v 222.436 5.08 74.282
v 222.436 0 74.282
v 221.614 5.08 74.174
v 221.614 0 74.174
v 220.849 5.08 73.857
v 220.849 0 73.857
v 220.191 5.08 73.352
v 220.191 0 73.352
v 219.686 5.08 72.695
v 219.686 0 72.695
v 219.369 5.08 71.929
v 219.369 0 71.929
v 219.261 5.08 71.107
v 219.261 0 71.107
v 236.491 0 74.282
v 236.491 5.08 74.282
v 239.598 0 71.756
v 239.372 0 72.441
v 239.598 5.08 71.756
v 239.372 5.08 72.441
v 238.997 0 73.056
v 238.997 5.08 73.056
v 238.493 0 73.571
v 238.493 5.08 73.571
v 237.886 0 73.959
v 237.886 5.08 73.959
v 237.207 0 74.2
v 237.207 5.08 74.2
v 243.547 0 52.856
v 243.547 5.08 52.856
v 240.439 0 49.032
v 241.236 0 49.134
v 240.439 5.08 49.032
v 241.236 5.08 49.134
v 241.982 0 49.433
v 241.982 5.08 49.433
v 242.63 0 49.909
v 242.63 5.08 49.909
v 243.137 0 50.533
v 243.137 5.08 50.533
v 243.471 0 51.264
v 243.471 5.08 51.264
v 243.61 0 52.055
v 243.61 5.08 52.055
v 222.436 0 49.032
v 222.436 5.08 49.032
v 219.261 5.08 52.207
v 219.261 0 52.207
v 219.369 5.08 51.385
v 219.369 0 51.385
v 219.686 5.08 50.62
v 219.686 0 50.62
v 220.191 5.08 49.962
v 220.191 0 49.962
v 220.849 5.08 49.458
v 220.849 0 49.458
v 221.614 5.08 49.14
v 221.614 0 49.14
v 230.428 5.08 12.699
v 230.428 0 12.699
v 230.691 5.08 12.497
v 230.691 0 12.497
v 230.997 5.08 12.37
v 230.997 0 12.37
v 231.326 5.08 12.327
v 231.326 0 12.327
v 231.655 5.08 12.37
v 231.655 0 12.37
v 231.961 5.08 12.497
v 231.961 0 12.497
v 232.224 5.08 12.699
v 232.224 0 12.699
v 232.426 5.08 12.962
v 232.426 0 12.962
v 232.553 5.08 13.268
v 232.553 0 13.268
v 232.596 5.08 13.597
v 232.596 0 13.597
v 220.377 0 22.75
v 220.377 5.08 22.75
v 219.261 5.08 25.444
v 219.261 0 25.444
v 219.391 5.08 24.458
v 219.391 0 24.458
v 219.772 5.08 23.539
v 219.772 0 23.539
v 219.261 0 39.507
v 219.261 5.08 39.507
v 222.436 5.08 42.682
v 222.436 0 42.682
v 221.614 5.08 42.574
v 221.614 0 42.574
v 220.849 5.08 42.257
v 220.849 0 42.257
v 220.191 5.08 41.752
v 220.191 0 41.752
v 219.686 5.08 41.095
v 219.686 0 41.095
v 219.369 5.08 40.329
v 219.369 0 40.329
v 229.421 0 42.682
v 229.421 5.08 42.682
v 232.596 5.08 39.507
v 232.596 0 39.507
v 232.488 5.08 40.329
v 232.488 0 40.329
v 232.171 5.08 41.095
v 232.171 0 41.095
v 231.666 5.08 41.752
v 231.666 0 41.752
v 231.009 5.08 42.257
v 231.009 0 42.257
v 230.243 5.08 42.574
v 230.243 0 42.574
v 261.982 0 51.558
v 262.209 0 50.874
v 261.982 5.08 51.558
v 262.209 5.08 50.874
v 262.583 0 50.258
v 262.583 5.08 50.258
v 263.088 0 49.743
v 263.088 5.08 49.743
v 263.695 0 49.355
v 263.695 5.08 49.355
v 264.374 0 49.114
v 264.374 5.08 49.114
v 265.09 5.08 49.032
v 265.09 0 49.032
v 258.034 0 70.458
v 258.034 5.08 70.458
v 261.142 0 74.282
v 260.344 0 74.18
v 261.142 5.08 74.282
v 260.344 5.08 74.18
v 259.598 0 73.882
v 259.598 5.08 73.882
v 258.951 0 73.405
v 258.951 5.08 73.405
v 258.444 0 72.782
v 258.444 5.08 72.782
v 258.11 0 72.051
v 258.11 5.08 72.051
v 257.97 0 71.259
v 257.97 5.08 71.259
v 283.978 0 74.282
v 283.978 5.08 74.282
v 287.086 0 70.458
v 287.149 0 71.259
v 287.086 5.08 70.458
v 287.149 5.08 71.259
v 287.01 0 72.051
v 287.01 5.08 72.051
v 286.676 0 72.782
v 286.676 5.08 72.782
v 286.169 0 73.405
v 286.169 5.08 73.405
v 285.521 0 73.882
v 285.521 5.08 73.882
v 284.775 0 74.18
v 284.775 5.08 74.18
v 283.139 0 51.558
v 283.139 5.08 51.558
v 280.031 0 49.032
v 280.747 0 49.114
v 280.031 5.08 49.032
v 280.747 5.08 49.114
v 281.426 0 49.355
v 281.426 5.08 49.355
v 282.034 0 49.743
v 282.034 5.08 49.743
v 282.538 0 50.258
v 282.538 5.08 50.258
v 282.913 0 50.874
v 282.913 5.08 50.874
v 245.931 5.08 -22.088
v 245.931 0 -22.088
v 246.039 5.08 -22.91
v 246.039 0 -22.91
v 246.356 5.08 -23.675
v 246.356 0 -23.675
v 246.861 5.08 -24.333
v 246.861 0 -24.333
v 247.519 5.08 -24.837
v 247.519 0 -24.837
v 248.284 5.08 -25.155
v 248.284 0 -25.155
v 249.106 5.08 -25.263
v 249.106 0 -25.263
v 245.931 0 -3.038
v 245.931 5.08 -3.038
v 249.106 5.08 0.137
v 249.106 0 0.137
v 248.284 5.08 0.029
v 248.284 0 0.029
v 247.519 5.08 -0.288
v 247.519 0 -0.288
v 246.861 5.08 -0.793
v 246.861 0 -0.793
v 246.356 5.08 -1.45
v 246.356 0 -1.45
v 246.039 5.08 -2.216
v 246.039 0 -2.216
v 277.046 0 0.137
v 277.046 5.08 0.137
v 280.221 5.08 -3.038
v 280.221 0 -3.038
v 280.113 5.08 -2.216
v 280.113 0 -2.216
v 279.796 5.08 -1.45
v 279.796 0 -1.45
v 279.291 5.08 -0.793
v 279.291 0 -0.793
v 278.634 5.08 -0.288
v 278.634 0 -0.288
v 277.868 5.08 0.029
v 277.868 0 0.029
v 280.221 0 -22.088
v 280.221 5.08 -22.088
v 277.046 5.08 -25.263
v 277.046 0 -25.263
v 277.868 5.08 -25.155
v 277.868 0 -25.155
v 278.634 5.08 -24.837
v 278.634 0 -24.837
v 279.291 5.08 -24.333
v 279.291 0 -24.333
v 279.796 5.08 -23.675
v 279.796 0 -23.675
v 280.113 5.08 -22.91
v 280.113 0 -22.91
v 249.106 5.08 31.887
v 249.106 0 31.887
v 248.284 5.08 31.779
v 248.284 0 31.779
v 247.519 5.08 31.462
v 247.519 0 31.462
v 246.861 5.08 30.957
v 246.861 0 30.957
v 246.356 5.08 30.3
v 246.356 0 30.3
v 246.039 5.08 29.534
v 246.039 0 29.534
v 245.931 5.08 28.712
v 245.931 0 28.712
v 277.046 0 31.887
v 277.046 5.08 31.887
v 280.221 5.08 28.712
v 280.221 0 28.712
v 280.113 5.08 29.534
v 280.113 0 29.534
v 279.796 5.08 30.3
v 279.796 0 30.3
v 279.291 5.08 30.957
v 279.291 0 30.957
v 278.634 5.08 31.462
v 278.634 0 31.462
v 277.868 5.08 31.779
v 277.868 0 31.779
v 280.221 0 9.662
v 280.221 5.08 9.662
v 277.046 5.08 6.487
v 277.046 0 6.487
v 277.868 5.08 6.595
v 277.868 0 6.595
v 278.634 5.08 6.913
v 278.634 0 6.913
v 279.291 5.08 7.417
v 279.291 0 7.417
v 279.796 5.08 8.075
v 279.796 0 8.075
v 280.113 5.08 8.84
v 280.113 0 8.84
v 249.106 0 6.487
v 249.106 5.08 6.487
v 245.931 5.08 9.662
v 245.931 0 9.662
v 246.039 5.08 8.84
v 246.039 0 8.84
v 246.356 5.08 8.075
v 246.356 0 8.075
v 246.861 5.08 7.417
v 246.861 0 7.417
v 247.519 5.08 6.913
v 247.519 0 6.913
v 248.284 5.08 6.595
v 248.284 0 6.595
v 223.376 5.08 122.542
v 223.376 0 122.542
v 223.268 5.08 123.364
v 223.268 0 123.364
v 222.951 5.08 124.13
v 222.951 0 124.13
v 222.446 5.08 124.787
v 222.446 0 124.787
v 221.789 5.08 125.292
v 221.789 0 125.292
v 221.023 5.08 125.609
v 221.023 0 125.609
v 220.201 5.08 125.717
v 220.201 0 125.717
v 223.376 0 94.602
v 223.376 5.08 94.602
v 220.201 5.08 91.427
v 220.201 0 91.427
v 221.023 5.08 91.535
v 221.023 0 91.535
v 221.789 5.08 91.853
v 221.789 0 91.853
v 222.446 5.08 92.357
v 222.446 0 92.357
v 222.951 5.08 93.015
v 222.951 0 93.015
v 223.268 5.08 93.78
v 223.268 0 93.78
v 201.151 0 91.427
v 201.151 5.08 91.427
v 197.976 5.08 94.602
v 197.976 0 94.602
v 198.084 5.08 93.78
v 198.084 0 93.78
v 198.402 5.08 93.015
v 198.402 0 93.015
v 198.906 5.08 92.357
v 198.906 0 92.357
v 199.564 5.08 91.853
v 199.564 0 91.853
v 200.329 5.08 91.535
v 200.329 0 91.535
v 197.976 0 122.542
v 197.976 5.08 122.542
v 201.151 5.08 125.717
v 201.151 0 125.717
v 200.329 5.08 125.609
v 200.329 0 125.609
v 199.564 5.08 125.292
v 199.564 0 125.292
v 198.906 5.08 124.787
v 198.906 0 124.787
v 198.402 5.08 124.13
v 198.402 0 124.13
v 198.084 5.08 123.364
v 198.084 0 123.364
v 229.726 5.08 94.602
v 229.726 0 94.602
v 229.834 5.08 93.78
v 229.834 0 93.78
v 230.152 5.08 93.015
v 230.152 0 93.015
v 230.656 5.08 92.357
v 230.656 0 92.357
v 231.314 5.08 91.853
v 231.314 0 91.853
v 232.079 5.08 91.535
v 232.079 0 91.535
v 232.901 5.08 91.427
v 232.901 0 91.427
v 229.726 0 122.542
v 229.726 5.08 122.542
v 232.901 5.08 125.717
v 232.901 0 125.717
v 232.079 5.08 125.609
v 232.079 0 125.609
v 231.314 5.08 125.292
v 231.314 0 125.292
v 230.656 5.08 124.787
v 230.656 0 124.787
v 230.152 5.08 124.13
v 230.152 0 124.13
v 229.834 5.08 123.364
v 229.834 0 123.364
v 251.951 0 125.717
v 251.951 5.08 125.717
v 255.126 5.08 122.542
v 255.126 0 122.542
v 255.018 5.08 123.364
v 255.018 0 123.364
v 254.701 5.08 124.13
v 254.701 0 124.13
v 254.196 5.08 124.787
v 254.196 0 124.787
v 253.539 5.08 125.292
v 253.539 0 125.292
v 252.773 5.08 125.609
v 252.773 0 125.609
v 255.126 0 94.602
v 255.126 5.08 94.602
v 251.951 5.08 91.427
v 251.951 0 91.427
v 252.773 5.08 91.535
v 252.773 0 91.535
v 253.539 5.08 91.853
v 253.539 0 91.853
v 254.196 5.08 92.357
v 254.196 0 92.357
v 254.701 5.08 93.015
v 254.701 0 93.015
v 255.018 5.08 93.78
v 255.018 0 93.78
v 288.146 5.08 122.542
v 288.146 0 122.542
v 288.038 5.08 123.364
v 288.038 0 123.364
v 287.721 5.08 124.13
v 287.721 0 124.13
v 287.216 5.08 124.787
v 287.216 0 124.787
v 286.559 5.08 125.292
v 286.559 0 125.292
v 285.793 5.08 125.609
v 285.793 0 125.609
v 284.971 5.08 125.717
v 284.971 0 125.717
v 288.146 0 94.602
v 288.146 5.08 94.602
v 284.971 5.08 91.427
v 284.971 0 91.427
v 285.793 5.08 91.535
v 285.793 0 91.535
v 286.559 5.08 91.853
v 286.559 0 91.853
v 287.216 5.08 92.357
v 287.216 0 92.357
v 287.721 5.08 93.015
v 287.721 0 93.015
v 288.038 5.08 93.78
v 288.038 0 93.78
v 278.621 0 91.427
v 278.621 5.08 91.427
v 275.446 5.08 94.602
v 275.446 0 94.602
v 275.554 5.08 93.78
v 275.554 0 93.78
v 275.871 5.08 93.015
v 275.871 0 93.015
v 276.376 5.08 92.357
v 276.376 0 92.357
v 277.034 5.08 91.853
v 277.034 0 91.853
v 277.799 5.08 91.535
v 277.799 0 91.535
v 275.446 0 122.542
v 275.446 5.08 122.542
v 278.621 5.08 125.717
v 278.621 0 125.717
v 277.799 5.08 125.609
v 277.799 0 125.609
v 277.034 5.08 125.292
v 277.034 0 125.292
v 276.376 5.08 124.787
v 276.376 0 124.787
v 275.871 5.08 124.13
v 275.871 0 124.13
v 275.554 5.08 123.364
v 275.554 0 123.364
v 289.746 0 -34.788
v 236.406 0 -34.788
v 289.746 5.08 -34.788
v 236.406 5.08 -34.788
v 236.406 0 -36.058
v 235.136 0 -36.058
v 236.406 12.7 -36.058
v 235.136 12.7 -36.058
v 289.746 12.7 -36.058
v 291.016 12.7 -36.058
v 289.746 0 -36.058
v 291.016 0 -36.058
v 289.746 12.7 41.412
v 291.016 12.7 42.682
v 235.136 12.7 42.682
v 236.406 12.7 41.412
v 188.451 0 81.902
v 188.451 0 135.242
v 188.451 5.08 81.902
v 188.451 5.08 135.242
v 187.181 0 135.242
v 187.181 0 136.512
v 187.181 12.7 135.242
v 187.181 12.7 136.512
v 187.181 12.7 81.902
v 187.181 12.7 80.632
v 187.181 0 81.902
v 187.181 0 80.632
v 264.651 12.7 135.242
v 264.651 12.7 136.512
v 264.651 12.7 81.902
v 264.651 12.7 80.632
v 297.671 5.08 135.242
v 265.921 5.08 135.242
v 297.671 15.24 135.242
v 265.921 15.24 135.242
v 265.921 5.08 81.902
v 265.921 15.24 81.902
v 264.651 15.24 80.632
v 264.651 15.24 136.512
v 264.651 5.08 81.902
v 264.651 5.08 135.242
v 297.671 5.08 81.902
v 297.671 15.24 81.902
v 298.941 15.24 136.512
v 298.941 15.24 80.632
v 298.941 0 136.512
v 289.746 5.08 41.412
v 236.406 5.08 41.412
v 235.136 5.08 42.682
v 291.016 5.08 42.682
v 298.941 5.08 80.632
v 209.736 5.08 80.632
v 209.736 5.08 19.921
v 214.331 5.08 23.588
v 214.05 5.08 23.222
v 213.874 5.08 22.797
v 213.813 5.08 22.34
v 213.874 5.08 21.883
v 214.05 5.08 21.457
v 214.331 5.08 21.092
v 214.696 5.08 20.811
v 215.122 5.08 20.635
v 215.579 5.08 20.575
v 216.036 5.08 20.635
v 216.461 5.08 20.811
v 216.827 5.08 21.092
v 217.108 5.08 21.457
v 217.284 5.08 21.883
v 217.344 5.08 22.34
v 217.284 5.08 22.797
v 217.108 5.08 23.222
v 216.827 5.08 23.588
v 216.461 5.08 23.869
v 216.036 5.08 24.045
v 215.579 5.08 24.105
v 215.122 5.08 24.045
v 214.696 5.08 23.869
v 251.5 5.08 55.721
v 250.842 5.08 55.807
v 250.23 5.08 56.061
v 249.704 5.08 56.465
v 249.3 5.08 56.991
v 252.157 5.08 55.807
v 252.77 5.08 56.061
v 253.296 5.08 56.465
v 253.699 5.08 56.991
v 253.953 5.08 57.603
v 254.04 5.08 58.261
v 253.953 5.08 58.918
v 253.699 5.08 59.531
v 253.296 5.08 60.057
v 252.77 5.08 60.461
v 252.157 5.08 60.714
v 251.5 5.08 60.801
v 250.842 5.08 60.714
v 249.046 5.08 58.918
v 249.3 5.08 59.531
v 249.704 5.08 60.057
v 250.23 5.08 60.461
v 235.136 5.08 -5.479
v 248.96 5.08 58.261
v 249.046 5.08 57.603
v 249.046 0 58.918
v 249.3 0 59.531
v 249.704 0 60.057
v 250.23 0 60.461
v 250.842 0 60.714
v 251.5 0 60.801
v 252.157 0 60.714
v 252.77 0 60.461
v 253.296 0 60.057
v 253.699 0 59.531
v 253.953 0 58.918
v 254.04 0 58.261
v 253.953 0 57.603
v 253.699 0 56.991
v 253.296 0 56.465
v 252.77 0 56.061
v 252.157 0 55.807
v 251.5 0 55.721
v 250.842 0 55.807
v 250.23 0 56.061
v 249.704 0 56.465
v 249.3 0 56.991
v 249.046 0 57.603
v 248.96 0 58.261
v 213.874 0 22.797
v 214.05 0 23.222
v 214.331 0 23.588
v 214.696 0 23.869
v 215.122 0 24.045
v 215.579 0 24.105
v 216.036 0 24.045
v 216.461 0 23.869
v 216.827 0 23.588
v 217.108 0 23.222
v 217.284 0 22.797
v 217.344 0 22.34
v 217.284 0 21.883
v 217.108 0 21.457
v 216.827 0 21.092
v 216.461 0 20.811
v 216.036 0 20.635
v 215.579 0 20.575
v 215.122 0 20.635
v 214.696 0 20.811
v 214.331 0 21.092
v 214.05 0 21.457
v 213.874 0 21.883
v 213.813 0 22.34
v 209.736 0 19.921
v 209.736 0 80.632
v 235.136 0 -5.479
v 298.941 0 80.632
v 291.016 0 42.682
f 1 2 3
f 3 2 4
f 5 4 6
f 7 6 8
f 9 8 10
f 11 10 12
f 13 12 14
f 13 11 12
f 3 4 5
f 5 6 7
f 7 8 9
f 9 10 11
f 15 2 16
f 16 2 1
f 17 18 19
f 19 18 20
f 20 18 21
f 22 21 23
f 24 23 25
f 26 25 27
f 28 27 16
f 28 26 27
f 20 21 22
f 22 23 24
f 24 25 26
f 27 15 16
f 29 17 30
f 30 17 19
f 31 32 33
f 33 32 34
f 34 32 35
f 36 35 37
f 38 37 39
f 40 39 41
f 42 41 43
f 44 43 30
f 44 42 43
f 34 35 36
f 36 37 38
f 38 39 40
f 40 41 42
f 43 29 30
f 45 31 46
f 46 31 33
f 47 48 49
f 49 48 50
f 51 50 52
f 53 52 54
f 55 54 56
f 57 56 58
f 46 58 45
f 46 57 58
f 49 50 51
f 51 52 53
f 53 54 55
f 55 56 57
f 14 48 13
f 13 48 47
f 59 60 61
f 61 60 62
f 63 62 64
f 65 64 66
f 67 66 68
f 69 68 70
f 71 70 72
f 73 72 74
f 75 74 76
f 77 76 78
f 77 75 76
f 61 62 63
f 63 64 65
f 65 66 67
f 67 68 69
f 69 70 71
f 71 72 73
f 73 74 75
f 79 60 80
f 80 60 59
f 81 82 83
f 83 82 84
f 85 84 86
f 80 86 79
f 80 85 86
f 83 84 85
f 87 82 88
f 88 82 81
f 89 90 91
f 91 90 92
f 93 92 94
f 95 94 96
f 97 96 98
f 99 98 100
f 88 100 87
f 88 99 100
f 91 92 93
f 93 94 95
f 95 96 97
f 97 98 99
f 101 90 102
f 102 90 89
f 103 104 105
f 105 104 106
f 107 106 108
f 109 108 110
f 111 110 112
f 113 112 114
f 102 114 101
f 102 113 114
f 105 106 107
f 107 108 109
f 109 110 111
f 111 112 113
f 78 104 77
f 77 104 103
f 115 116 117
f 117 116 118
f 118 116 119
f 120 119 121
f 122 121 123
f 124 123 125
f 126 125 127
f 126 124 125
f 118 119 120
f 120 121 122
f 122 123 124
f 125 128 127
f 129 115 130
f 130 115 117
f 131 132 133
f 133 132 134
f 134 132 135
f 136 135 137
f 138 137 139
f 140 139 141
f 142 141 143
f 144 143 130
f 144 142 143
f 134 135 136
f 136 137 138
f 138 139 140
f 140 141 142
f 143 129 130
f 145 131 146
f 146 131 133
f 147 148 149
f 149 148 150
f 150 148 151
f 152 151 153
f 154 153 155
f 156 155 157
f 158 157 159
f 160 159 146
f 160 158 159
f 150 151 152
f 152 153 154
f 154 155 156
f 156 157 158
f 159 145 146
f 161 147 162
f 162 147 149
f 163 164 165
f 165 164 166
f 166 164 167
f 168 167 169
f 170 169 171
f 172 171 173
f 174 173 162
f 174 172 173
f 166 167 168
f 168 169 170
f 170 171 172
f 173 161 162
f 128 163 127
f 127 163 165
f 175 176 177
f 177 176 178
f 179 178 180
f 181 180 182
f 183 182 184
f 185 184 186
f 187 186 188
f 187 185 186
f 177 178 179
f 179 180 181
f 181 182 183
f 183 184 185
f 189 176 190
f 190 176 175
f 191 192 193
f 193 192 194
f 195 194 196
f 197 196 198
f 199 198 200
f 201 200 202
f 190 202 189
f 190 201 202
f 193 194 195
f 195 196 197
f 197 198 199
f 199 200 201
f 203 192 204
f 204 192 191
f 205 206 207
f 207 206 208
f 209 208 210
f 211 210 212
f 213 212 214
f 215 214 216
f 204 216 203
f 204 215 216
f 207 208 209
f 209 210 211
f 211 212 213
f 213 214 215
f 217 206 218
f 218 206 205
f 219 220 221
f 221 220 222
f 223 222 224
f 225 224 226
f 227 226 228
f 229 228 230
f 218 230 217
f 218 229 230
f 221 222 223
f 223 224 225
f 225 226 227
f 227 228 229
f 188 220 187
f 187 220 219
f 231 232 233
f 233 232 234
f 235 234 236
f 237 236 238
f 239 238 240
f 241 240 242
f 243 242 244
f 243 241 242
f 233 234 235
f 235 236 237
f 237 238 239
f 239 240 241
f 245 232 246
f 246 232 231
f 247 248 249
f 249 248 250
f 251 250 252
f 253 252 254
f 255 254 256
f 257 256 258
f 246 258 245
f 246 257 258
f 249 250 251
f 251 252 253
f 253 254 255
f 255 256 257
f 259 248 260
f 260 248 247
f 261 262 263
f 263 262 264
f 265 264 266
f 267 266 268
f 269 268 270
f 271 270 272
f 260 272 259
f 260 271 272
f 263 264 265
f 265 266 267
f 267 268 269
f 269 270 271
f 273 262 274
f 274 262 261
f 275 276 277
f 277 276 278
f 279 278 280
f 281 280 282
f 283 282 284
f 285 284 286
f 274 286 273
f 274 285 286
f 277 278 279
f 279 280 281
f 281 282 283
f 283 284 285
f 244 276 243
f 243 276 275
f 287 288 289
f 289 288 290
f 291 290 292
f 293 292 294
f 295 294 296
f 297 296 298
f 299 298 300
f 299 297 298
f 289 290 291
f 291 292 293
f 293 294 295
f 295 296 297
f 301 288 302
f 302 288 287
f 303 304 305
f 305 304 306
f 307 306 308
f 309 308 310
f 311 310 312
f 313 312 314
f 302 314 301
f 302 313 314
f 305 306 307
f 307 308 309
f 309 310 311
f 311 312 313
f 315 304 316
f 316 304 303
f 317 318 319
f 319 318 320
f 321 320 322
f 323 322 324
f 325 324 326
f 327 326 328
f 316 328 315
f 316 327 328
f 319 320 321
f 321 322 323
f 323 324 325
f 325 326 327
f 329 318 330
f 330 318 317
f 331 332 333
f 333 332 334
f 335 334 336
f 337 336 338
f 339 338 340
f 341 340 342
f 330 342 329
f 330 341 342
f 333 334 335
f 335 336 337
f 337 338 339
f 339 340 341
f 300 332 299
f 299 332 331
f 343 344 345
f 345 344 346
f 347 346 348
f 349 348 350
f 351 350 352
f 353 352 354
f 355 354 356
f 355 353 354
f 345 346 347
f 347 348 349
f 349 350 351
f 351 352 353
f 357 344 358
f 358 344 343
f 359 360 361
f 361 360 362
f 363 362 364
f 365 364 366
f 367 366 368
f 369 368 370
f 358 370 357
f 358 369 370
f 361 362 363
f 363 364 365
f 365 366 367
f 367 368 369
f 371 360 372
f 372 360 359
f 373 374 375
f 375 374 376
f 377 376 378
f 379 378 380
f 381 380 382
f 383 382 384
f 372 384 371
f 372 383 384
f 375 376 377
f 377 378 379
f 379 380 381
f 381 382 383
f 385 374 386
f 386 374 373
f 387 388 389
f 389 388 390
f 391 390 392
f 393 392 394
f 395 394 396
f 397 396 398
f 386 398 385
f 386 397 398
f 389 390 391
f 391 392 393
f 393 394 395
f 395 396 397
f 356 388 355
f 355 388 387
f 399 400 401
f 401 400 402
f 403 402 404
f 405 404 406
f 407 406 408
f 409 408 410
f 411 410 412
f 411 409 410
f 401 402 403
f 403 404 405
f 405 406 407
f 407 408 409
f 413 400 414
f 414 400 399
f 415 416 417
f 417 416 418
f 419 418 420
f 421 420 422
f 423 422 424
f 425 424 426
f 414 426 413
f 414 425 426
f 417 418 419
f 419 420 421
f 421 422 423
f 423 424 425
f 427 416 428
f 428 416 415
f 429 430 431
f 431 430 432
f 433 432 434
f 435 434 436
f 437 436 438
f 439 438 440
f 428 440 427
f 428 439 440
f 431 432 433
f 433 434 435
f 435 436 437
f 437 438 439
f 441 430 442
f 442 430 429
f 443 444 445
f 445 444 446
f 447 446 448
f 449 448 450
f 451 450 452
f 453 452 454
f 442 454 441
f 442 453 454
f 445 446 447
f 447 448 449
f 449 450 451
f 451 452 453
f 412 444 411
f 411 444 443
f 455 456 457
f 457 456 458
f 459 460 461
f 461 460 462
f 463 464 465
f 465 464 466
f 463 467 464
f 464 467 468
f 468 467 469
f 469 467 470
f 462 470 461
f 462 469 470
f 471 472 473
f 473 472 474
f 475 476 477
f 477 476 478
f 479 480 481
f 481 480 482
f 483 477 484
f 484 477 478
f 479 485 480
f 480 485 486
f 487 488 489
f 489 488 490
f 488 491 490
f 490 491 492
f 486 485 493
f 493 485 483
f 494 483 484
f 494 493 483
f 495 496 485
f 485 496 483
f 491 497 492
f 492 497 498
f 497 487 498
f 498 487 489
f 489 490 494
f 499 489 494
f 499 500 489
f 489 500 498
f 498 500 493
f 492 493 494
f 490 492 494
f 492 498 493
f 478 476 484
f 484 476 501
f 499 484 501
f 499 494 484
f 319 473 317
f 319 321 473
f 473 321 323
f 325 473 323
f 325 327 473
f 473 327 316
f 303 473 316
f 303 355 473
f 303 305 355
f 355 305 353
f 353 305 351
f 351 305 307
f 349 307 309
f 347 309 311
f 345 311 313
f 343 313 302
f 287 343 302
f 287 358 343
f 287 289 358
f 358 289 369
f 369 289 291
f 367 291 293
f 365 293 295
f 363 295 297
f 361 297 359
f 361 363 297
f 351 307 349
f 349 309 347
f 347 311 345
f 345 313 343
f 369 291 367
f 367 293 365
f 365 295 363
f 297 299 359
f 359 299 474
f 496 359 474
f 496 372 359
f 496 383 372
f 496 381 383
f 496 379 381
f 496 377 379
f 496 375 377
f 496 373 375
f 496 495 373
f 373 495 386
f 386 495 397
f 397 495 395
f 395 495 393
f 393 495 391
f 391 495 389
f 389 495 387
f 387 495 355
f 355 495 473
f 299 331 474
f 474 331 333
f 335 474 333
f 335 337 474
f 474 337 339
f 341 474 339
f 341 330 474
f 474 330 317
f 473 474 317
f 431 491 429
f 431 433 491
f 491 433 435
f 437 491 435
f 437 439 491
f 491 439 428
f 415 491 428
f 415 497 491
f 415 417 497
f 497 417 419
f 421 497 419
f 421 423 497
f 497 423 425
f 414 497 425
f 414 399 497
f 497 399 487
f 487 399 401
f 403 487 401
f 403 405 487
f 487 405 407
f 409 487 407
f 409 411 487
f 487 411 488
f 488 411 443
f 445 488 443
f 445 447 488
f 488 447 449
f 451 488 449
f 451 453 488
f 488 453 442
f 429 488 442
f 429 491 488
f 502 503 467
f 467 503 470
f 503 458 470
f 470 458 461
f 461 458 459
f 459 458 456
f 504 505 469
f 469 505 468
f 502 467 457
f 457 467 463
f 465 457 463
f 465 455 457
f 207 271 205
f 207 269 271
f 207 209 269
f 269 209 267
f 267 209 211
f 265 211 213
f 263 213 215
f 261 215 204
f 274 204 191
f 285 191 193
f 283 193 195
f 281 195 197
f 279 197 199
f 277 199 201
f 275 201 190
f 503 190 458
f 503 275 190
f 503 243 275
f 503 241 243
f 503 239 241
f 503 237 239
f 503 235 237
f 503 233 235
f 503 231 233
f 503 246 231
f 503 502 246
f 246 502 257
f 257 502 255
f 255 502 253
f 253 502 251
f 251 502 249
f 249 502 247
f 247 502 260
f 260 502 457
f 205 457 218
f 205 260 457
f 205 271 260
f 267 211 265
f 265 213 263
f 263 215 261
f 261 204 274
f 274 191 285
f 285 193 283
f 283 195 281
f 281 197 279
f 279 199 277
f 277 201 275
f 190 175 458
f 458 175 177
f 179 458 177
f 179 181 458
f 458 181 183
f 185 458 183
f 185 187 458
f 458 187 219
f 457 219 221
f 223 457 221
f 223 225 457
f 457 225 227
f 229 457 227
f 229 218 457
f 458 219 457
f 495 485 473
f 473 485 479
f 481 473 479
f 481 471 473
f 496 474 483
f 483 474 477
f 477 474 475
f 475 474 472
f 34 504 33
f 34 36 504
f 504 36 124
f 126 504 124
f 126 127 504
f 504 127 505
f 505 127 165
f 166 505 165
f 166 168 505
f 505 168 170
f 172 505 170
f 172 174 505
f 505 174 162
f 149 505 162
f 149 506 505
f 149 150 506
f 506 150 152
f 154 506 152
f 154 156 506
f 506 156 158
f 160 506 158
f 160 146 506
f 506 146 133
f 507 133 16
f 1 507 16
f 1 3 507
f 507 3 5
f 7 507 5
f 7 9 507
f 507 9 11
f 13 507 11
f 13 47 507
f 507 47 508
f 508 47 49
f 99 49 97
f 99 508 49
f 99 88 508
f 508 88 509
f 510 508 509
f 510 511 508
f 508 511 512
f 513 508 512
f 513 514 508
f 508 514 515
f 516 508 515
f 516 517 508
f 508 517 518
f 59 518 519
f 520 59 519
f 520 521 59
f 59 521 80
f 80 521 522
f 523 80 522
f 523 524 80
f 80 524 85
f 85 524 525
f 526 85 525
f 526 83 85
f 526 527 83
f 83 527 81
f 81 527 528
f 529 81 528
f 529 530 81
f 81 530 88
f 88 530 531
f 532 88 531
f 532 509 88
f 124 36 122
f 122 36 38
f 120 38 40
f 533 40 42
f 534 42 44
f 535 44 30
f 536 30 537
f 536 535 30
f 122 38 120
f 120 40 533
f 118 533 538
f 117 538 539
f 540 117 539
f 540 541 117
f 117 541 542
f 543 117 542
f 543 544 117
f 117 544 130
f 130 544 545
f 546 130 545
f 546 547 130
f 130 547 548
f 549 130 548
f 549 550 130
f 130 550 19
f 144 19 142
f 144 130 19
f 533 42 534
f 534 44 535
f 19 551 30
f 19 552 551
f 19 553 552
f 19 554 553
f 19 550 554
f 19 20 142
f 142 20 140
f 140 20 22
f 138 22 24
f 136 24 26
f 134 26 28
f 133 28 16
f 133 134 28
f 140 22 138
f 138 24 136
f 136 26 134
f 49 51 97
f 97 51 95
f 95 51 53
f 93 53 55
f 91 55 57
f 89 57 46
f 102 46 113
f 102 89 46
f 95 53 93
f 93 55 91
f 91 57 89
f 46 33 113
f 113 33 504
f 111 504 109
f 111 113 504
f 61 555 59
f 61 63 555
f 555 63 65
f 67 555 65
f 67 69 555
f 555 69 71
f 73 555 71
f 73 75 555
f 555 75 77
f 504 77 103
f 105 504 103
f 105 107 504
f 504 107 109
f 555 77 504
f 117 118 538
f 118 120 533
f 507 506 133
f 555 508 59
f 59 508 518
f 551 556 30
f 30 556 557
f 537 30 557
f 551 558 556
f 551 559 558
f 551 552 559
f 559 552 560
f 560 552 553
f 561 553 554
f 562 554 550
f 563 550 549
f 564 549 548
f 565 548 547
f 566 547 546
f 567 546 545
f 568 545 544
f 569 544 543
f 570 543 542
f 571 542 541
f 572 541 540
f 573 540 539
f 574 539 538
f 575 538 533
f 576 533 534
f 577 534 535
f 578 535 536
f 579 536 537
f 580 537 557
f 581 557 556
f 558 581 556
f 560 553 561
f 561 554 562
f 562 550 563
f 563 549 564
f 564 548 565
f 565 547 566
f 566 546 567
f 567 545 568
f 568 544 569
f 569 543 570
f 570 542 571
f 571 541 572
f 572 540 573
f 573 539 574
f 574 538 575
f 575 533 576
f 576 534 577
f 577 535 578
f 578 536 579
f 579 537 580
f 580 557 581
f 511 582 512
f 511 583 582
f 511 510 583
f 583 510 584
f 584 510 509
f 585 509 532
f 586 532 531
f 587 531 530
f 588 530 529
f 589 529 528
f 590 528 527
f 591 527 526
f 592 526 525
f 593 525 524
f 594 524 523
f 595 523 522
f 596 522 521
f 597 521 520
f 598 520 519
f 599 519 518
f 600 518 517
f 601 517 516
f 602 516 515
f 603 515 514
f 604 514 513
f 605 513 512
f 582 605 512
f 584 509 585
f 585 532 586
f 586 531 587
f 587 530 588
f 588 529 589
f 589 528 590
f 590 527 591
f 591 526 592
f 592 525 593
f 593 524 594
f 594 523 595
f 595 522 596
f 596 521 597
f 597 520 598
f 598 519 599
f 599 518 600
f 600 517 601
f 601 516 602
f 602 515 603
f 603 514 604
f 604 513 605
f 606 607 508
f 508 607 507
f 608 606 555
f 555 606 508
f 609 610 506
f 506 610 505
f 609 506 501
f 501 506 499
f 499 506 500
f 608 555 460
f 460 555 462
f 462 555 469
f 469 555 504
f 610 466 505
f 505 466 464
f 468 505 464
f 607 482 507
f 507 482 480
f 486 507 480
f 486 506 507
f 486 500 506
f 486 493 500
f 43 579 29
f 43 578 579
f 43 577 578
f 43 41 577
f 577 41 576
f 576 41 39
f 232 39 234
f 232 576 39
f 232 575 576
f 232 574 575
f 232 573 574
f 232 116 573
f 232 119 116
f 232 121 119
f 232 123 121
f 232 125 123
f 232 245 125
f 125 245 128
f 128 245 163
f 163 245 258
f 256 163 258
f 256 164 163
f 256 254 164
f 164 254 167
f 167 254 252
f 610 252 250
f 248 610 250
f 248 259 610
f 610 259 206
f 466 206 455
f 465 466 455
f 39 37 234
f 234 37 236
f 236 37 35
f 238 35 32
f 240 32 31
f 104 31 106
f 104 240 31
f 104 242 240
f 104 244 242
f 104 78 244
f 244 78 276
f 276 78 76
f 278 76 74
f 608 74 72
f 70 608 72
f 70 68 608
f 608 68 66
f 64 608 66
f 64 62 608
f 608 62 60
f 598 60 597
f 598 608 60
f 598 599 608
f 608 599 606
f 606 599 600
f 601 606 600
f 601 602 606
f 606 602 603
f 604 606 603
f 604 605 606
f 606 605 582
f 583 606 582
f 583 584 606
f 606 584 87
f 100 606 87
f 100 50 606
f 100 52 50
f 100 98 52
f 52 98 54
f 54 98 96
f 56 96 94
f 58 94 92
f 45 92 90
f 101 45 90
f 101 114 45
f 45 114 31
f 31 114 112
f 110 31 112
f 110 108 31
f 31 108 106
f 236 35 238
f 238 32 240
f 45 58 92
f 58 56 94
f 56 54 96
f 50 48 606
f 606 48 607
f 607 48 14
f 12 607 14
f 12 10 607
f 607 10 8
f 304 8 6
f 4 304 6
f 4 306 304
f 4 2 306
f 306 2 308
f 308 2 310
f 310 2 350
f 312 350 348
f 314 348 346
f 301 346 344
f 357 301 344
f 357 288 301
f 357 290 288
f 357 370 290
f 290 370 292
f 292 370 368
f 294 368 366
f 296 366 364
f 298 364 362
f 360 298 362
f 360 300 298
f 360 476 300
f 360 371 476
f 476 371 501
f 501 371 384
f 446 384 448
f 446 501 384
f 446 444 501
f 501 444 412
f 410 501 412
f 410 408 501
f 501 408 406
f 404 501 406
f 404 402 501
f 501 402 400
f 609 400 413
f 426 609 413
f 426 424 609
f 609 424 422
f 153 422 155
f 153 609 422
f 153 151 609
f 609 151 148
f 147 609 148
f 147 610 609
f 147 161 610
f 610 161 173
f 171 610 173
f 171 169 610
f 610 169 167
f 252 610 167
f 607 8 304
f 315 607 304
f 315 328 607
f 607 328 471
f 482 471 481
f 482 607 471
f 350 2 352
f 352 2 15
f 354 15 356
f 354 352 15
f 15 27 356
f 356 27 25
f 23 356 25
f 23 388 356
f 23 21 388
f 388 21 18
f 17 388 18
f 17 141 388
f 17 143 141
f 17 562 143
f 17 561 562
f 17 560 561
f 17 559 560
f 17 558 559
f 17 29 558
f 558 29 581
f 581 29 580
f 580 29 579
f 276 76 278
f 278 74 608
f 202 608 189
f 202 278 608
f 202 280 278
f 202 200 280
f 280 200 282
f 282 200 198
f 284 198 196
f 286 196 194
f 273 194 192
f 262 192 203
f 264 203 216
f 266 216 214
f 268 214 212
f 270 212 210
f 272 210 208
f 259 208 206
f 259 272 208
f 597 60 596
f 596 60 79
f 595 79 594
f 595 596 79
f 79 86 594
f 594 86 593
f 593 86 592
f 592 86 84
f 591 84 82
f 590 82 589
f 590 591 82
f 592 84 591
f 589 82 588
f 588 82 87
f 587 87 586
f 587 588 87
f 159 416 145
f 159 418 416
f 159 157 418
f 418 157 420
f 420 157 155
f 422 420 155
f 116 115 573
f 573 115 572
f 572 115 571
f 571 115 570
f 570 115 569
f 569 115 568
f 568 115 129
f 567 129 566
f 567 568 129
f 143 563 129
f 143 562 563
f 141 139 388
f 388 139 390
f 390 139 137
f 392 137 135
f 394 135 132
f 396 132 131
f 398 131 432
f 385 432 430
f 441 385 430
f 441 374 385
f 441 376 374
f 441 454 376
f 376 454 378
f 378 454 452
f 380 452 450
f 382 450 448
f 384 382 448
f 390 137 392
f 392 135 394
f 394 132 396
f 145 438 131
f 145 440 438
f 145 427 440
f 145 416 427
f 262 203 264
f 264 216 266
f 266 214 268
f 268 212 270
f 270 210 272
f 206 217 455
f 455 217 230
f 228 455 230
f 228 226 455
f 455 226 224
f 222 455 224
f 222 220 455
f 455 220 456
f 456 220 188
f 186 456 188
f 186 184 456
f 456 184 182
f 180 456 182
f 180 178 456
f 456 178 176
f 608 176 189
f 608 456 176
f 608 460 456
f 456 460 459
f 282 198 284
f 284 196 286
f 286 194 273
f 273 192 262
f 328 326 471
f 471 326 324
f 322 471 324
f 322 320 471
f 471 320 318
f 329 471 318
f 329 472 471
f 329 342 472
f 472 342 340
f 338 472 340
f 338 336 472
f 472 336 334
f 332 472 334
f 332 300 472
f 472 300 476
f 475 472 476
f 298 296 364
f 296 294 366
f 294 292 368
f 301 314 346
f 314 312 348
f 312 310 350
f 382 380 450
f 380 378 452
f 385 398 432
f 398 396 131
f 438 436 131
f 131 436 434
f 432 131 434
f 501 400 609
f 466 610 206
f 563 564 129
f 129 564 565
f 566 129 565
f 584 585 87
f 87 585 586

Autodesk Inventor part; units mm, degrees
ref_plane "YZ Plane" through (0, 0, 0) normal (1, 0, 0) x (0, 1, 0)
ref_plane "XZ Plane" through (0, 0, 0) normal (0, 1, 0) x (-1, 0, 0)
ref_plane "XY Plane" through (0, 0, 0) normal (0, 0, 1) x (1, 0, 0)
sketch "Sketch1" plane through (0, 0, 0) normal (0, 1, 0) x (-1, 0, 0)
  line L0 (-203.3861, 74.2822) -> (-125.9161, 74.2822) construction
  line L1 (-125.9161, 74.2822) -> (-125.9161, -61.6078) construction
  line L2 (-125.9161, -61.6078) -> (-203.3861, -61.6078) construction
  line L3 (-203.3861, -61.6078) -> (-203.3861, 74.2822) construction
  line L4 (-203.3861, 74.2822) -> (-266.8861, 74.2822) construction
  line L5 (-164.6511, 373.4543) -> (-228.1511, 373.4543) construction
  line L6 (-228.1511, 373.4543) -> (-228.1511, 106.7543) construction
  line L7 (-228.1511, 106.7543) -> (-299.9932, 34.9122) construction
  line L8 (-299.9932, 34.9122) -> (-668.2932, 34.9122) construction
  line L9 (-668.2932, 34.9122) -> (-668.2932, -28.5878) construction
  line L10 (-668.2932, -28.5878) -> (-223.7932, -28.5878) construction
  line L11 (-223.7932, -28.5878) -> (-164.6511, 30.5543) construction
  line L12 (-164.6511, 30.5543) -> (-164.6511, 373.4543) construction
  line L13 (-264.0722, 70.8332) -> (-194.2222, 0.9832) construction
  line L14 (-266.8861, 74.2822) -> (-266.8861, 48.8822) construction
  line L15 (-266.8861, 48.8822) -> (-203.3861, -14.6178) construction
  line L16 (-266.8861, 68.0193) -> (-260.6232, 74.2822) construction
  circle A0 centre (-251.4998, 58.2609) radius 2.54
  circle A1 centre (-215.5788, 22.3399) radius 1.7653
  line L17 (-264.6511, 135.2422) -> (-188.4511, 135.2422)
  line L18 (-188.4511, 135.2422) -> (-188.4511, 81.9022)
  line L19 (-188.4511, 81.9022) -> (-264.6511, 81.9022)
  line L20 (-264.6511, 81.9022) -> (-264.6511, 135.2422)
  circle A2 centre (-164.6511, -28.5878) radius 4.9213 construction
  line L21 (-164.6511, 30.5543) -> (-164.6511, -28.5878) construction
  line L22 (-164.6511, -28.5878) -> (-223.7932, -28.5878) construction
  line L23 (-264.6511, 136.5122) -> (-187.1811, 136.5122)
  line L24 (-187.1811, 136.5122) -> (-187.1811, 80.6322)
  line L25 (-187.1811, 80.6322) -> (-264.6511, 80.6322)
  line L26 (-264.6511, 80.6322) -> (-264.6511, 136.5122)
  line L27 (-289.7461, 41.4122) -> (-236.4061, 41.4122)
  line L28 (-236.4061, 41.4122) -> (-236.4061, -34.7878)
  line L29 (-236.4061, -34.7878) -> (-289.7461, -34.7878)
  line L30 (-289.7461, -34.7878) -> (-289.7461, 41.4122)
  line L31 (-291.0161, 42.6822) -> (-235.1361, 42.6822)
  line L32 (-235.1361, 42.6822) -> (-235.1361, -36.0578)
  line L33 (-235.1361, -36.0578) -> (-291.0161, -36.0578)
  line L34 (-291.0161, -36.0578) -> (-291.0161, 42.6822)
  line L35 (-235.1361, -5.4793) -> (-209.7361, 19.9207)
  line L36 (-209.7361, 19.9207) -> (-209.7361, 80.6322)
  line L37 (-264.6511, 136.5122) -> (-264.6511, 80.6322)
  line L38 (-264.6511, 81.9022) -> (-264.6511, 135.2422)
  line L39 (-264.6511, 80.6322) -> (-264.6511, 136.5122)
  line L40 (-265.9211, 135.2422) -> (-297.6711, 135.2422)
  line L41 (-297.6711, 135.2422) -> (-297.6711, 81.9022)
  line L42 (-297.6711, 81.9022) -> (-265.9211, 81.9022)
  line L43 (-265.9211, 81.9022) -> (-265.9211, 135.2422)
  line L44 (-264.6511, 136.5122) -> (-298.9411, 136.5122)
  line L45 (-298.9411, 136.5122) -> (-298.9411, 80.6322)
  line L46 (-298.9411, 80.6322) -> (-264.6511, 80.6322)
  line L47 (-291.0161, 42.6822) -> (-298.9411, 80.6322)
  circle A3 centre (-278.6211, 114.9222) radius 3.175 construction
  point P0 (0, 0)
  point P1 (-177.3511, 74.2822)
  point P2 (-151.9511, 74.2822)
  point P3 (-177.3511, -61.6078)
  point P4 (-151.9511, -61.6078)
  dimension "d0" = 63.5
  dimension "d1" = 63.5
  dimension "d2" = 63.5
  dimension "d3" = 101.6
  dimension "d4" = 266.7
  dimension "d5" = 368.3
  dimension "d6" = 444.5
  dimension "d7" = 342.9
  dimension "d8" = 17.78
  dimension "d9" = 68.58
  dimension "d10" = 25.4
  dimension "d11" = 5.08
  dimension "d12" = 3.5306
  dimension "d14" = 76.2
  dimension "d15" = 9.8425
  dimension "d16" = 59.142
  dimension "d17" = 100
  dimension "d20" = 1.27
  dimension "d22" = 6.35
  dimension "d26" = 53.34
  dimension "d27" = 1.27
  dimension "d28" = 1.27
  dimension "d29" = 1.27
  dimension "d30" = 1.27
  dimension "d31" = 76.2
  dimension "d32" = 31.75
  dimension "d33" = 70
  dimension "d42" = 6.35
  dimension "d43" = 5.8426
  dimension "d44" = 5.842
  dimension "d50" = 31.75
  dimension "d51" = 1.27
  dimension "d52" = 1.27
  dimension "d53" = 53.34
  dimension "d54" = 1.27
  dimension "d55" = 1.27
  dimension "d71" = 6.35
  dimension "d72" = 20.32
  dimension "d73" = 12.7
extrude "Extrusion6" add sketch "Sketch1" along normal blind 5.08 contours L26 L23 L24 L25 L19 L18 L17 | L17 L18 L19 L20 | L20 L26 L46 L45 L44 | L25 L36 L35 L32 L31 L47 L46 | L31 L32 L33 L34 | L27 L28 L29 L30 | L43 L42 L41 L40
extrude "Extrusion7" add sketch "Sketch1" along normal blind 12.7 contours L26 L23 L24 L25 L19 L18 L17
extrude "Extrusion8" add sketch "Sketch1" along normal blind 12.7 contours L31 L32 L33 L34
extrude "Extrusion9" add sketch "Sketch1" along normal blind 15.24 contours L20 L26 L46 L45 L44
sketch "Sketch6" plane through (0, 12.7, 0) normal (0, 1, 0) x (1, 0, 0)
  line L0 (187.1811, -80.6322) -> (187.1811, -136.5122) projected
  line L1 (188.4511, -81.9022) -> (187.1811, -81.9022)
  line L2 (187.1811, -81.9022) -> (187.1811, -135.2422)
  line L3 (187.1811, -135.2422) -> (188.4511, -135.2422)
  line L4 (188.4511, -135.2422) -> (188.4511, -81.9022)
  point P0 (0, 0)
extrude "Extrusion11" cut sketch "Sketch6" against normal blind 25.4
sketch "Sketch7" plane through (0, 12.7, 0) normal (0, 1, 0) x (1, 0, 0)
  line L0 (291.0161, 36.0578) -> (235.1361, 36.0578) projected
  line L1 (236.4061, 34.7878) -> (289.7461, 34.7878)
  line L2 (289.7461, 34.7878) -> (289.7461, 36.0578)
  line L3 (289.7461, 36.0578) -> (236.4061, 36.0578)
  line L4 (236.4061, 36.0578) -> (236.4061, 34.7878)
  point P0 (0, 0)
extrude "Extrusion12" cut sketch "Sketch7" against normal blind 25.4
sketch "Sketch8" plane through (0, 5.08, 0) normal (0, 1, 0) x (1, 0, 0)
  line L0 (265.9211, -81.9022) -> (265.9211, -135.2422) projected
  line L1 (265.9211, -135.2422) -> (297.6711, -135.2422) projected
  line L2 (297.6711, -135.2422) -> (297.6711, -81.9022) projected
  line L3 (297.6711, -81.9022) -> (265.9211, -81.9022) projected
  line L4 (278.6211, -91.4272) -> (284.9711, -91.4272)
  line L5 (288.1461, -94.6022) -> (288.1461, -122.5422)
  line L6 (284.9711, -125.7172) -> (278.6211, -125.7172)
  line L7 (275.4461, -122.5422) -> (275.4461, -94.6022)
  arc A0 (278.6211, -91.4272) -> (275.4461, -94.6022) centre (278.6211, -94.6022) ccw
  arc A1 (288.1461, -94.6022) -> (284.9711, -91.4272) centre (284.9711, -94.6022) ccw
  arc A2 (284.9711, -125.7172) -> (288.1461, -122.5422) centre (284.9711, -122.5422) ccw
  arc A3 (275.4461, -122.5422) -> (278.6211, -125.7172) centre (278.6211, -122.5422) ccw
  point P0 (0, 0)
  point P1 (275.4461, -91.4272)
  point P2 (288.1461, -125.7172)
  point P3 (288.1461, -91.4272)
  point P4 (275.4461, -125.7172)
  dimension "d74" = 9.525
  dimension "d75" = 9.525
  dimension "d76" = 9.525
  dimension "d77" = 9.525
  dimension "d115" = 3.175
extrude "Extrusion13" cut sketch "Sketch8" against normal blind 25.4 contours L4 A1 L5 A2 L6 A3 L7 A0
sketch "Sketch9" plane through (0, 5.08, 0) normal (0, 1, 0) x (1, 0, 0)
  line L0 (264.6511, -135.2422) -> (264.6511, -81.9022) projected
  line L1 (188.4511, -81.9022) -> (188.4511, -135.2422) projected
  line L2 (255.1261, -94.6022) -> (255.1261, -122.5422)
  line L3 (197.9761, -122.5422) -> (197.9761, -94.6022)
  line L4 (223.3761, -94.6022) -> (223.3761, -122.5422)
  line L5 (229.7261, -94.6022) -> (229.7261, -122.5422)
  line L6 (201.1511, -91.4272) -> (220.2011, -91.4272)
  line L7 (232.9011, -91.4272) -> (251.9511, -91.4272)
  line L8 (251.9511, -125.7172) -> (232.9011, -125.7172)
  line L9 (220.2011, -125.7172) -> (201.1511, -125.7172)
  arc A0 (201.1511, -91.4272) -> (197.9761, -94.6022) centre (201.1511, -94.6022) ccw
  arc A1 (223.3761, -94.6022) -> (220.2011, -91.4272) centre (220.2011, -94.6022) ccw
  arc A2 (197.9761, -122.5422) -> (201.1511, -125.7172) centre (201.1511, -122.5422) ccw
  arc A3 (220.2011, -125.7172) -> (223.3761, -122.5422) centre (220.2011, -122.5422) ccw
  arc A4 (229.7261, -122.5422) -> (232.9011, -125.7172) centre (232.9011, -122.5422) ccw
  arc A5 (232.9011, -91.4272) -> (229.7261, -94.6022) centre (232.9011, -94.6022) ccw
  arc A6 (255.1261, -94.6022) -> (251.9511, -91.4272) centre (251.9511, -94.6022) ccw
  arc A7 (251.9511, -125.7172) -> (255.1261, -122.5422) centre (251.9511, -122.5422) ccw
  point P0 (0, 0)
  point P1 (197.9761, -91.4272)
  point P2 (255.1261, -125.7172)
  point P3 (255.1261, -91.4272)
  point P4 (197.9761, -125.7172)
  point P5 (223.3761, -91.4272)
  point P6 (223.3761, -125.7172)
  point P7 (229.7261, -91.4272)
  point P8 (229.7261, -125.7172)
  dimension "d80" = 9.525
  dimension "d82" = 9.525
  dimension "d84" = 25.4
  dimension "d85" = 25.4
  dimension "d116" = 3.175
extrude "Extrusion14" cut sketch "Sketch9" against normal blind 25.4
sketch "Sketch10" plane through (0, 5.08, 0) normal (0, 1, 0) x (1, 0, 0)
  line L0 (236.4061, -41.4122) -> (289.7461, -41.4122) projected
  line L1 (289.7461, 34.7878) -> (236.4061, 34.7878) projected
  line L2 (249.1061, 25.2628) -> (277.0461, 25.2628)
  line L3 (277.0461, -31.8872) -> (249.1061, -31.8872)
  line L4 (249.1061, -0.1372) -> (277.0461, -0.1372)
  line L5 (249.1061, -6.4872) -> (277.0461, -6.4872)
  line L6 (188.4511, -135.2422) -> (264.6511, -135.2422) projected
  line L7 (280.2211, 22.0878) -> (280.2211, 3.0378)
  line L8 (280.2211, -9.6622) -> (280.2211, -28.7122)
  line L9 (245.9311, -28.7122) -> (245.9311, -9.6622)
  line L10 (245.9311, 3.0378) -> (245.9311, 22.0878)
  arc A0 (245.9311, 3.0378) -> (249.1061, -0.1372) centre (249.1061, 3.0378) ccw
  arc A1 (249.1061, 25.2628) -> (245.9311, 22.0878) centre (249.1061, 22.0878) ccw
  arc A2 (280.2211, 22.0878) -> (277.0461, 25.2628) centre (277.0461, 22.0878) ccw
  arc A3 (277.0461, -0.1372) -> (280.2211, 3.0378) centre (277.0461, 3.0378) ccw
  arc A4 (280.2211, -9.6622) -> (277.0461, -6.4872) centre (277.0461, -9.6622) ccw
  arc A5 (249.1061, -6.4872) -> (245.9311, -9.6622) centre (249.1061, -9.6622) ccw
  arc A6 (245.9311, -28.7122) -> (249.1061, -31.8872) centre (249.1061, -28.7122) ccw
  arc A7 (277.0461, -31.8872) -> (280.2211, -28.7122) centre (277.0461, -28.7122) ccw
  point P0 (0, 0)
  point P1 (245.9311, 25.2628)
  point P2 (280.2211, -31.8872)
  point P3 (280.2211, 25.2628)
  point P4 (245.9311, -31.8872)
  point P5 (245.9311, -0.1372)
  point P6 (280.2211, -0.1372)
  point P7 (245.9311, -6.4872)
  point P8 (280.2211, -6.4872)
  dimension "d88" = 9.525
  dimension "d91" = 9.525
  dimension "d92" = 25.4
  dimension "d93" = 25.4
  dimension "d117" = 3.175
extrude "Extrusion15" cut sketch "Sketch10" against normal blind 25.4
sketch "Sketch11" plane through (0, 5.08, 0) normal (0, 1, 0) x (1, 0, 0)
  line L0 (209.7361, -80.6322) -> (298.9411, -80.6322) projected
  line L1 (298.9411, -80.6322) -> (291.0161, -42.6822) projected
  line L2 (291.0161, -42.6822) -> (235.1361, -42.6822) projected
  line L3 (235.1361, -42.6822) -> (235.1361, 5.4793) projected
  line L4 (235.1361, 5.4793) -> (209.7361, -19.9207) projected
  line L5 (209.7361, -19.9207) -> (209.7361, -80.6322) projected
  circle A0 centre (215.5788, -22.3399) radius 1.7653 projected
  circle A1 centre (251.4998, -58.2609) radius 2.54 projected
  line L6 (265.0899, -49.0322) -> (280.0312, -49.0322)
  line L7 (283.1392, -51.5582) -> (287.086, -70.4582)
  line L8 (283.9781, -74.2822) -> (266.5077, -74.2822)
  line L9 (261.982, -51.5579) -> (258.0336, -70.4579)
  line L10 (261.1415, -74.2822) -> (266.5077, -74.2822)
  line L11 (243.5469, -52.8565) -> (239.5985, -71.7565)
  line L12 (236.4906, -74.2822) -> (222.4361, -74.2822)
  line L13 (219.2611, -71.1072) -> (219.2611, -52.2072)
  line L14 (222.4361, -49.0322) -> (240.439, -49.0322)
  line L15 (229.4211, -42.6822) -> (222.4361, -42.6822)
  line L16 (219.2611, -39.5072) -> (219.2611, -26.5422)
  line L17 (232.5961, -13.5971) -> (232.5961, -39.5072)
  line L18 (235.1361, -42.6822) -> (291.0161, -42.6822) projected
  line L19 (221.1541, -21.9731) -> (230.4281, -12.6991)
  line L20 (232.5961, -10.531) -> (232.5961, -13.2072)
  line L21 (188.4511, -135.2422) -> (264.6511, -135.2422) projected
  arc A2 (243.5469, -52.8565) -> (240.439, -49.0322) centre (240.439, -52.2072) ccw
  arc A3 (222.4361, -49.0322) -> (219.2611, -52.2072) centre (222.4361, -52.2072) ccw
  arc A4 (219.2611, -71.1072) -> (222.4361, -74.2822) centre (222.4361, -71.1072) ccw
  arc A5 (236.4906, -74.2822) -> (239.5985, -71.7565) centre (236.4906, -71.1072) ccw
  arc A6 (258.0336, -70.4579) -> (261.1415, -74.2822) centre (261.1415, -71.1072) ccw
  arc A7 (265.0899, -49.0322) -> (261.982, -51.5579) centre (265.0899, -52.2072) ccw
  arc A8 (283.1392, -51.5582) -> (280.0312, -49.0322) centre (280.0312, -52.2072) ccw
  arc A9 (283.9781, -74.2822) -> (287.086, -70.4582) centre (283.9781, -71.1072) ccw
  arc A10 (229.4211, -42.6822) -> (232.5961, -39.5072) centre (229.4211, -39.5072) ccw
  arc A11 (219.2611, -39.5072) -> (222.4361, -42.6822) centre (222.4361, -39.5072) ccw
  arc A12 (232.5961, -13.5971) -> (230.4281, -12.6991) centre (231.3261, -13.5971) ccw
  line L22 (221.1541, -21.9731) -> (220.3771, -22.7501)
  line L23 (219.2611, -25.4442) -> (219.2611, -26.5422)
  arc A13 (220.3771, -22.7501) -> (219.2611, -25.4442) centre (223.0711, -25.4442) ccw
  point P0 (0, 0)
  point P1 (282.6117, -49.0322)
  point P2 (287.8846, -74.2822)
  point P3 (262.5097, -49.0322)
  point P4 (257.2347, -74.2822)
  point P5 (244.3458, -49.0322)
  point P6 (239.0708, -74.2822)
  point P7 (219.2611, -74.2822)
  point P8 (219.2611, -49.0322)
  point P9 (232.5961, -42.6822)
  point P10 (219.2611, -42.6822)
  dimension "d96" = 6.35
  dimension "d97" = 9.525
  dimension "d98" = 6.35
  dimension "d100" = 101.795
  dimension "d101" = 101.8
  dimension "d102" = 6.35
  dimension "d103" = 9.525
  dimension "d104" = 6.35
  dimension "d105" = 6.35
  dimension "d106" = 6.35
  dimension "d108" = 2.54
  dimension "d111" = 9.525
  dimension "d118" = 3.175
  dimension "d119" = 1.27
  dimension "d120" = 3.81
  dimension "d121" = 2.5347
extrude "Extrusion16" cut sketch "Sketch11" against normal blind 25.4 contours L6 A8 L7 A9 L8 L10 A6 L9 A7 | L11 A5 L12 A4 L13 A3 L14 A2 | L15 A11 L16 L23 A13 L22 L19 A12 L17 A10
properties part number "Laser_Holder"
